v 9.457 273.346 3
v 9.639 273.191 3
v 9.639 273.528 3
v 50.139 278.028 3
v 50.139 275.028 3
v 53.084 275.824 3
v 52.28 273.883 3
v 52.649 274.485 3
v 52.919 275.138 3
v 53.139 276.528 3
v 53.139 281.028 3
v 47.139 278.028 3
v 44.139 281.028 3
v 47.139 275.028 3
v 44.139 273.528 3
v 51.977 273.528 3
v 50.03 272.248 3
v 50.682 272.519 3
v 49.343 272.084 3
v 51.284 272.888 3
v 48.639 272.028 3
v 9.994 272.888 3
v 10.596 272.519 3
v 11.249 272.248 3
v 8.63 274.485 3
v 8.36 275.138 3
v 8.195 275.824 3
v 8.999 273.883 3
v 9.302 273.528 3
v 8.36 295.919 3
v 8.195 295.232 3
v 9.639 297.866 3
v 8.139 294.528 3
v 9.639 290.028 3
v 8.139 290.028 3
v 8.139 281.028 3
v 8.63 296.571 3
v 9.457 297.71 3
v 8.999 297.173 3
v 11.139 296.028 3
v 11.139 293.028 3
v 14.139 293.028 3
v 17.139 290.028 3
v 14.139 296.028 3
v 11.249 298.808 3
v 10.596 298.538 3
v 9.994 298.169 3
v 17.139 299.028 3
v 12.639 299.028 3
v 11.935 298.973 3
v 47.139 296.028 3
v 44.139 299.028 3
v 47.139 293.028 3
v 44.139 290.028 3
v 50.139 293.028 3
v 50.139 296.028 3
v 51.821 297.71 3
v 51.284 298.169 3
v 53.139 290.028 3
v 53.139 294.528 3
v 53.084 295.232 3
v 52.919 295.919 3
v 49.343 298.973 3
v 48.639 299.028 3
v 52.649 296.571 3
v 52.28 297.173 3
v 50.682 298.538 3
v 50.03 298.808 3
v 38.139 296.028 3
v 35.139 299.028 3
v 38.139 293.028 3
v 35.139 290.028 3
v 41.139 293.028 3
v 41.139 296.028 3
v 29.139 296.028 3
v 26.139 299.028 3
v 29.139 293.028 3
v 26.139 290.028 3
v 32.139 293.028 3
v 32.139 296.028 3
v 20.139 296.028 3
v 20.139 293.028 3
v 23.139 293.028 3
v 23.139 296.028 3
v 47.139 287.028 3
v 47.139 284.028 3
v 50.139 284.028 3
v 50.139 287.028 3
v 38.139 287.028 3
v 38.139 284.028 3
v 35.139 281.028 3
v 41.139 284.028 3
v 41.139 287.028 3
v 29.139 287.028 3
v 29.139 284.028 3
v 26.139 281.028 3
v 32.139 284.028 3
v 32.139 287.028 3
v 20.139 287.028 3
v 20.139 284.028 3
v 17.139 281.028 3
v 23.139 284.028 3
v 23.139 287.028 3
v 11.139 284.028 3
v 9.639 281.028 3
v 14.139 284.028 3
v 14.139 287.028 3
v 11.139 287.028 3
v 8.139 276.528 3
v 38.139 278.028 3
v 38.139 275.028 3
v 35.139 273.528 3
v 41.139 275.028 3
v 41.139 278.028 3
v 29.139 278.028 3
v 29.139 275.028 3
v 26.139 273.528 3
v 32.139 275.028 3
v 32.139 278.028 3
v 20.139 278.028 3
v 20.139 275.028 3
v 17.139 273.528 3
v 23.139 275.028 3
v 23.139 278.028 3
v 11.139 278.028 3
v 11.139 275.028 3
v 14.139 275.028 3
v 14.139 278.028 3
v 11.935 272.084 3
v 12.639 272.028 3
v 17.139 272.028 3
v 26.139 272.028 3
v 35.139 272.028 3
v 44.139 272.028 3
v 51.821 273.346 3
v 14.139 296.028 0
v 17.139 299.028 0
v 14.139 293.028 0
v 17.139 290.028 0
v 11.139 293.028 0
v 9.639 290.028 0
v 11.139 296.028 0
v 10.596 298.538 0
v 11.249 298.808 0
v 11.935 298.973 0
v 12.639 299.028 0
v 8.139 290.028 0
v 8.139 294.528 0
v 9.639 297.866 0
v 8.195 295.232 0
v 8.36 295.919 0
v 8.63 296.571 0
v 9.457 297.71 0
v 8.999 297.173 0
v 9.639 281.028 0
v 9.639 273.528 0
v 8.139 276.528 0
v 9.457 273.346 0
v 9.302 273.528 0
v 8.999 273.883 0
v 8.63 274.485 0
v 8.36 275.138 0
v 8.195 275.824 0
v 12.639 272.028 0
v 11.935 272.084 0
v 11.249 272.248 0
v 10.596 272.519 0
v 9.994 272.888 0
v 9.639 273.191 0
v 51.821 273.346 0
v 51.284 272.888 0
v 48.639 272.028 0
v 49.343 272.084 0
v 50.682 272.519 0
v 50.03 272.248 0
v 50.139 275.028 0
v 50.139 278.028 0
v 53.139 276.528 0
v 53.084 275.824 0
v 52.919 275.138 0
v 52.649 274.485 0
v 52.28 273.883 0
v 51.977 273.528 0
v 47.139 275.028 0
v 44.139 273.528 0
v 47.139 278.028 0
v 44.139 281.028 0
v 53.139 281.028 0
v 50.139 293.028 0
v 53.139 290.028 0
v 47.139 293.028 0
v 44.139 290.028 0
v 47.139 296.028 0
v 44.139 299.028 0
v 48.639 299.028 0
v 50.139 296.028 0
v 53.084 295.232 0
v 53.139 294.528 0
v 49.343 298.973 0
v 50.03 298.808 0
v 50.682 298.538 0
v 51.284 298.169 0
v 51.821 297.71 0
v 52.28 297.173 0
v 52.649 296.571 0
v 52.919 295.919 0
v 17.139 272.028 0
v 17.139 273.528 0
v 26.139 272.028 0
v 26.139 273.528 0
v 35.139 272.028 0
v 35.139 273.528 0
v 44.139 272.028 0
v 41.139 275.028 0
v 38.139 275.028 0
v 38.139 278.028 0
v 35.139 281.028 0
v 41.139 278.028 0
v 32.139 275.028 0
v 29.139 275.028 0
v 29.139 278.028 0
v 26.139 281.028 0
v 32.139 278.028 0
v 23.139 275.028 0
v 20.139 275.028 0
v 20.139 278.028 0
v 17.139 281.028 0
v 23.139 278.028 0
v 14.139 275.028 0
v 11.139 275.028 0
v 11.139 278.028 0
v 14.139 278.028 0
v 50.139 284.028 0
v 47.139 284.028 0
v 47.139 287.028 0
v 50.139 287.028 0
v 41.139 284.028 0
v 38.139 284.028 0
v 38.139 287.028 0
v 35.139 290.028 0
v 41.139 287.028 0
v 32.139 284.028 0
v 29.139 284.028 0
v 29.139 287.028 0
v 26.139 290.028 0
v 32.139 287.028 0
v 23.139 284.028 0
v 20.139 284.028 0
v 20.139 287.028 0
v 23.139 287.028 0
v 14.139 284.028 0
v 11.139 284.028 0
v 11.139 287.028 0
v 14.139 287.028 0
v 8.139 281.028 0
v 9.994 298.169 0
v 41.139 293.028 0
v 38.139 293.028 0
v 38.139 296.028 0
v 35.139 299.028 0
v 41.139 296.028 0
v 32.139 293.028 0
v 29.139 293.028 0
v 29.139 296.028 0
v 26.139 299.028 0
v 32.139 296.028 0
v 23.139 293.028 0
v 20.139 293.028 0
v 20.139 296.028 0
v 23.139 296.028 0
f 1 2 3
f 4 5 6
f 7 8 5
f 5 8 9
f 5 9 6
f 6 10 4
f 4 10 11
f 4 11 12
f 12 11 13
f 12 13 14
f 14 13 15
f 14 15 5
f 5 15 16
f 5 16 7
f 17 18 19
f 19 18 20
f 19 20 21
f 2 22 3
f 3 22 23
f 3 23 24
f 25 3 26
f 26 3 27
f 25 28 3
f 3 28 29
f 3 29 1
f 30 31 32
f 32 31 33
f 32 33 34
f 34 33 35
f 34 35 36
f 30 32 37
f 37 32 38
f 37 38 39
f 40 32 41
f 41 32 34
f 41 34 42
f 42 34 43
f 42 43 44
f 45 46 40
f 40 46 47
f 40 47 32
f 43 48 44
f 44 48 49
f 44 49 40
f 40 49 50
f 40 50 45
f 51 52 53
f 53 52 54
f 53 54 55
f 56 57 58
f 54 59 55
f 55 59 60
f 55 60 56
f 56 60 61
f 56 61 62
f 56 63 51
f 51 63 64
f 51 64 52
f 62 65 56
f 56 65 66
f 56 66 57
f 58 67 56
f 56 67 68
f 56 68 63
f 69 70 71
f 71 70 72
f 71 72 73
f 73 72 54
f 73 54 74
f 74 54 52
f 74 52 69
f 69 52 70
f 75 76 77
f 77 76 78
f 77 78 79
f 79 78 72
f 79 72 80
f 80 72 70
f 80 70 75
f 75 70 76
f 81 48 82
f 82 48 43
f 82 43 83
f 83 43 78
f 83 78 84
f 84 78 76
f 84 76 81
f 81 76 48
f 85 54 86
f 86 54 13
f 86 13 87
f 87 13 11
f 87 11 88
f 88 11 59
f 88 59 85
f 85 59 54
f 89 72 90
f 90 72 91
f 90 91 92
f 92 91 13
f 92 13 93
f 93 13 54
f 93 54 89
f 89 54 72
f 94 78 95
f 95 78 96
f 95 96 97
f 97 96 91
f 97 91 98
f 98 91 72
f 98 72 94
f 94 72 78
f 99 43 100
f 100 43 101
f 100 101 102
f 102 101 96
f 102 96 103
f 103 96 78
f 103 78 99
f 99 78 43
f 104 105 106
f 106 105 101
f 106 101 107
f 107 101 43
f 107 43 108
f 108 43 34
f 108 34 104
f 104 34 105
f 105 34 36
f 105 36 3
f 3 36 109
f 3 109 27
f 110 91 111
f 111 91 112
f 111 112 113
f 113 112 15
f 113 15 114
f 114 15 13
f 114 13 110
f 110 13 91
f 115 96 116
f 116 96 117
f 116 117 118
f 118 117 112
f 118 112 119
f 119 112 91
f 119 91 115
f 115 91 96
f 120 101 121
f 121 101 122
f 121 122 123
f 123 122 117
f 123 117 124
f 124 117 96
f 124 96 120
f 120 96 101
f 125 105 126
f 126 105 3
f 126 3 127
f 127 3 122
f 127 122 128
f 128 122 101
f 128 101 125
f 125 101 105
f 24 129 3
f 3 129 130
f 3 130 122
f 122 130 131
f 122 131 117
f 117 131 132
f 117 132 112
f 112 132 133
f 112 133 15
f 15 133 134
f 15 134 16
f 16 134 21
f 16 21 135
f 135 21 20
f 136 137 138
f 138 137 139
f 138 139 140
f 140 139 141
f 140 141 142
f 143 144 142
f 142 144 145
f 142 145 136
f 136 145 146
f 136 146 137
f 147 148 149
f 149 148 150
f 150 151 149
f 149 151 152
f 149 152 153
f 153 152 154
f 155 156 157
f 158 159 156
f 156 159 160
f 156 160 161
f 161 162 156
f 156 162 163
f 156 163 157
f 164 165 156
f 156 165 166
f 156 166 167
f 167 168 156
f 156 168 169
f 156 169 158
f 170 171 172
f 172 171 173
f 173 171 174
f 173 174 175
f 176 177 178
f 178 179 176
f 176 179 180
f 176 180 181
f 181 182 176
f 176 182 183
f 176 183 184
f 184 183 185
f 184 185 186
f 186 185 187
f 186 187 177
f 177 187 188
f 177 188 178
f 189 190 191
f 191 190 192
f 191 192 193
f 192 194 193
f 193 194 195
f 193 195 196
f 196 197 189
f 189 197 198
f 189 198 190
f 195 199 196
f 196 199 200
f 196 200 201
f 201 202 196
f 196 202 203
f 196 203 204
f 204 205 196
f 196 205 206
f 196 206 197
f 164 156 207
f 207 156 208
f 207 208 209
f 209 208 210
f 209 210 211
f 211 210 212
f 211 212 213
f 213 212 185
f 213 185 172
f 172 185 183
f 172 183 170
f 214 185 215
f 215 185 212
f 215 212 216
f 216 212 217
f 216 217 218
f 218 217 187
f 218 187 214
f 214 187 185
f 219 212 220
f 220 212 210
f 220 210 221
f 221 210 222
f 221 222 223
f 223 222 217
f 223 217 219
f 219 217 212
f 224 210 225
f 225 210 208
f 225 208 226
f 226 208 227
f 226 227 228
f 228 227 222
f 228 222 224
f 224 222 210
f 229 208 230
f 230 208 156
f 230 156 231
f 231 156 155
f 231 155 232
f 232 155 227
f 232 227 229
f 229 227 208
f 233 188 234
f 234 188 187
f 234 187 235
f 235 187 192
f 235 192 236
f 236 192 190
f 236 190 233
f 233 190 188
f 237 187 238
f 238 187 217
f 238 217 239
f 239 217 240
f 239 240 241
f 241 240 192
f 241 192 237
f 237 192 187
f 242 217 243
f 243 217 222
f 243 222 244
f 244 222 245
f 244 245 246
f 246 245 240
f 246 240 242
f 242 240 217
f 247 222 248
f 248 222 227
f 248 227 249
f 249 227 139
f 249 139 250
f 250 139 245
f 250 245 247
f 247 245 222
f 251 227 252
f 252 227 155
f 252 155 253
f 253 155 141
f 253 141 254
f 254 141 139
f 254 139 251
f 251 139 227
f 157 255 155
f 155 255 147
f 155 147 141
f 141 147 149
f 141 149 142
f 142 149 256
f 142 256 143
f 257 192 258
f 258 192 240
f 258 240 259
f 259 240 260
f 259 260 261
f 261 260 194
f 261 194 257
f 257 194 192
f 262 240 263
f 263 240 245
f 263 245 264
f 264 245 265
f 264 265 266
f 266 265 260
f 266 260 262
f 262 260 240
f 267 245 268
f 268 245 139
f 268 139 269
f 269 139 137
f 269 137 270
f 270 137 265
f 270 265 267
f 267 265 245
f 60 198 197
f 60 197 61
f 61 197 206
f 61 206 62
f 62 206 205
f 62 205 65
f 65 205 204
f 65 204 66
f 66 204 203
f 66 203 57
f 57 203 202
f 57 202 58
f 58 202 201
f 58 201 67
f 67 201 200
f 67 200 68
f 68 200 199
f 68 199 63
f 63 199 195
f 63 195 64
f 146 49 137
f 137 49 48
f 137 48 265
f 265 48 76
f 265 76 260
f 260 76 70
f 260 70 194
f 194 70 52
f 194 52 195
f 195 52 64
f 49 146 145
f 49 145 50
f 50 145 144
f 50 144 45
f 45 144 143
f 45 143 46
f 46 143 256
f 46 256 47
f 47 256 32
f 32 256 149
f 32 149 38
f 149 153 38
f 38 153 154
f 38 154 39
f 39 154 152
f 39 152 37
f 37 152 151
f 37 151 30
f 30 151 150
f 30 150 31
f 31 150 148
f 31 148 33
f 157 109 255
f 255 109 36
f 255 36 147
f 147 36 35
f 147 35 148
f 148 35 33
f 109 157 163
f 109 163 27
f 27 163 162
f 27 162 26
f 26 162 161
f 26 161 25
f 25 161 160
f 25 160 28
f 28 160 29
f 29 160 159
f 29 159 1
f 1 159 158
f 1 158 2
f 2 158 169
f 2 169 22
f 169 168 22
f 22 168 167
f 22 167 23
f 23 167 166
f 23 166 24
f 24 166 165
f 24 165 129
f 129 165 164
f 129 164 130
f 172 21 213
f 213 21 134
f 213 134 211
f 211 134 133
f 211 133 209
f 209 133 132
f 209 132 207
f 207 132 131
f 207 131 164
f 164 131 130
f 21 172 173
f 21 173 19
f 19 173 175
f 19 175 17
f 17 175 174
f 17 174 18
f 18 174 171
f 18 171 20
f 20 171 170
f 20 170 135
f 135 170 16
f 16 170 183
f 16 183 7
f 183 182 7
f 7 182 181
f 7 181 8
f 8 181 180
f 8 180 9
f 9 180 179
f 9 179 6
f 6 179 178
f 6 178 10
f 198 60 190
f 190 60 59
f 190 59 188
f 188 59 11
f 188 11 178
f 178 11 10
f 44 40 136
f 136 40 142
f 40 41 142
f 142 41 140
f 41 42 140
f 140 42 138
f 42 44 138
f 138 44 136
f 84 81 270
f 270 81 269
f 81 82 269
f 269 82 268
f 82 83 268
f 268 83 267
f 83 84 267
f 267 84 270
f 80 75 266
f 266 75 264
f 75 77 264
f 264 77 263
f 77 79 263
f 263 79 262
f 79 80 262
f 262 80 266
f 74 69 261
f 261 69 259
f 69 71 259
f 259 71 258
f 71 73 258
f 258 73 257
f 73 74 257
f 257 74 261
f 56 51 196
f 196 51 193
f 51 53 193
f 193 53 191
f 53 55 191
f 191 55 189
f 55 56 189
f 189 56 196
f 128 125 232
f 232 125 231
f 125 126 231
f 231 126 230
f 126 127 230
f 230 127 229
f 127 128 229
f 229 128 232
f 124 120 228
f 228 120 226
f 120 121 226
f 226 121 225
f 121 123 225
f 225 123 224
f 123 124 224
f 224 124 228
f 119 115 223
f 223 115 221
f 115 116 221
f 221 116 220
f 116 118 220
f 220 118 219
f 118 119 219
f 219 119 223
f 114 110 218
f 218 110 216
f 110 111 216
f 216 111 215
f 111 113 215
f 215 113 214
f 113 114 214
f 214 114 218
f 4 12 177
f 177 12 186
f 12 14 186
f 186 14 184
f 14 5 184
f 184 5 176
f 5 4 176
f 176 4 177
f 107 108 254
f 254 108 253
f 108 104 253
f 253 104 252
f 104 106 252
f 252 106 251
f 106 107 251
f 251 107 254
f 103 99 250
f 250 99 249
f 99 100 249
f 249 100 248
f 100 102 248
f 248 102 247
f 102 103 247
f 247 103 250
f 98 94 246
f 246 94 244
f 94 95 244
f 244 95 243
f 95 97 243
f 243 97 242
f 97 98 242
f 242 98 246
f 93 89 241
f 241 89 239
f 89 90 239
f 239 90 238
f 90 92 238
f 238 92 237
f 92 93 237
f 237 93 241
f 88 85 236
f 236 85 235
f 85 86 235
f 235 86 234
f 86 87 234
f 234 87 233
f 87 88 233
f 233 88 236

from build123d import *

# Parameters (mm, degrees)
MODEL_W                 = 3
MODEL_H                 = 3
SALIENTE_EXTRUIR1_DEPTH = 3


with BuildPart() as part:
    # Model → Saliente-Extruir1 (new body)
    with BuildSketch(Plane.XY):
        with BuildLine():
            Line((12.639309496, 299.028131514), (48.639309496, 299.028131514))
            ThreePointArc((48.639309496, 299.028131514), (51.821290011, 297.71011203), (53.139309496, 294.528131514))
            Line((53.139309496, 294.528131514), (53.139309496, 276.528131514))
            ThreePointArc((53.139309496, 276.528131514), (51.821290011, 273.346150999), (48.639309496, 272.028131514))
            Line((48.639309496, 272.028131514), (12.639309496, 272.028131514))
            ThreePointArc((12.639309496, 272.028131514), (9.457328981, 273.346150999), (8.139309496, 276.528131514))
            Line((8.139309496, 276.528131514), (8.139309496, 294.528131514))
            ThreePointArc((8.139309496, 294.528131514), (9.457328981, 297.71011203), (12.639309496, 299.028131514))
        make_face()
        with Locations((12.639309496, 294.528131514)):
            Rectangle(MODEL_W, MODEL_H, mode=Mode.SUBTRACT)
        with Locations((21.639309496, 294.528131514)):
            Rectangle(MODEL_W, MODEL_H, mode=Mode.SUBTRACT)
        with Locations((30.639309496, 294.528131514)):
            Rectangle(MODEL_W, MODEL_H, mode=Mode.SUBTRACT)
        with Locations((39.639309496, 294.528131514)):
            Rectangle(MODEL_W, MODEL_H, mode=Mode.SUBTRACT)
        with Locations((48.639309496, 294.528131514)):
            Rectangle(MODEL_W, MODEL_H, mode=Mode.SUBTRACT)
        with Locations((12.639309496, 276.528131514)):
            Rectangle(MODEL_W, MODEL_H, mode=Mode.SUBTRACT)
        with Locations((21.639309496, 276.528131514)):
            Rectangle(MODEL_W, MODEL_H, mode=Mode.SUBTRACT)
        with Locations((30.639309496, 276.528131514)):
            Rectangle(MODEL_W, MODEL_H, mode=Mode.SUBTRACT)
        with Locations((39.639309496, 276.528131514)):
            Rectangle(MODEL_W, MODEL_H, mode=Mode.SUBTRACT)
        with Locations((48.639309496, 276.528131514)):
            Rectangle(MODEL_W, MODEL_H, mode=Mode.SUBTRACT)
        with Locations((12.639309496, 285.528131514)):
            Rectangle(MODEL_W, MODEL_H, mode=Mode.SUBTRACT)
        with Locations((21.639309496, 285.528131514)):
            Rectangle(MODEL_W, MODEL_H, mode=Mode.SUBTRACT)
        with Locations((30.639309496, 285.528131514)):
            Rectangle(MODEL_W, MODEL_H, mode=Mode.SUBTRACT)
        with Locations((39.639309496, 285.528131514)):
            Rectangle(MODEL_W, MODEL_H, mode=Mode.SUBTRACT)
        with Locations((48.639309496, 285.528131514)):
            Rectangle(MODEL_W, MODEL_H, mode=Mode.SUBTRACT)
    extrude(amount=SALIENTE_EXTRUIR1_DEPTH)


solid = part.part
